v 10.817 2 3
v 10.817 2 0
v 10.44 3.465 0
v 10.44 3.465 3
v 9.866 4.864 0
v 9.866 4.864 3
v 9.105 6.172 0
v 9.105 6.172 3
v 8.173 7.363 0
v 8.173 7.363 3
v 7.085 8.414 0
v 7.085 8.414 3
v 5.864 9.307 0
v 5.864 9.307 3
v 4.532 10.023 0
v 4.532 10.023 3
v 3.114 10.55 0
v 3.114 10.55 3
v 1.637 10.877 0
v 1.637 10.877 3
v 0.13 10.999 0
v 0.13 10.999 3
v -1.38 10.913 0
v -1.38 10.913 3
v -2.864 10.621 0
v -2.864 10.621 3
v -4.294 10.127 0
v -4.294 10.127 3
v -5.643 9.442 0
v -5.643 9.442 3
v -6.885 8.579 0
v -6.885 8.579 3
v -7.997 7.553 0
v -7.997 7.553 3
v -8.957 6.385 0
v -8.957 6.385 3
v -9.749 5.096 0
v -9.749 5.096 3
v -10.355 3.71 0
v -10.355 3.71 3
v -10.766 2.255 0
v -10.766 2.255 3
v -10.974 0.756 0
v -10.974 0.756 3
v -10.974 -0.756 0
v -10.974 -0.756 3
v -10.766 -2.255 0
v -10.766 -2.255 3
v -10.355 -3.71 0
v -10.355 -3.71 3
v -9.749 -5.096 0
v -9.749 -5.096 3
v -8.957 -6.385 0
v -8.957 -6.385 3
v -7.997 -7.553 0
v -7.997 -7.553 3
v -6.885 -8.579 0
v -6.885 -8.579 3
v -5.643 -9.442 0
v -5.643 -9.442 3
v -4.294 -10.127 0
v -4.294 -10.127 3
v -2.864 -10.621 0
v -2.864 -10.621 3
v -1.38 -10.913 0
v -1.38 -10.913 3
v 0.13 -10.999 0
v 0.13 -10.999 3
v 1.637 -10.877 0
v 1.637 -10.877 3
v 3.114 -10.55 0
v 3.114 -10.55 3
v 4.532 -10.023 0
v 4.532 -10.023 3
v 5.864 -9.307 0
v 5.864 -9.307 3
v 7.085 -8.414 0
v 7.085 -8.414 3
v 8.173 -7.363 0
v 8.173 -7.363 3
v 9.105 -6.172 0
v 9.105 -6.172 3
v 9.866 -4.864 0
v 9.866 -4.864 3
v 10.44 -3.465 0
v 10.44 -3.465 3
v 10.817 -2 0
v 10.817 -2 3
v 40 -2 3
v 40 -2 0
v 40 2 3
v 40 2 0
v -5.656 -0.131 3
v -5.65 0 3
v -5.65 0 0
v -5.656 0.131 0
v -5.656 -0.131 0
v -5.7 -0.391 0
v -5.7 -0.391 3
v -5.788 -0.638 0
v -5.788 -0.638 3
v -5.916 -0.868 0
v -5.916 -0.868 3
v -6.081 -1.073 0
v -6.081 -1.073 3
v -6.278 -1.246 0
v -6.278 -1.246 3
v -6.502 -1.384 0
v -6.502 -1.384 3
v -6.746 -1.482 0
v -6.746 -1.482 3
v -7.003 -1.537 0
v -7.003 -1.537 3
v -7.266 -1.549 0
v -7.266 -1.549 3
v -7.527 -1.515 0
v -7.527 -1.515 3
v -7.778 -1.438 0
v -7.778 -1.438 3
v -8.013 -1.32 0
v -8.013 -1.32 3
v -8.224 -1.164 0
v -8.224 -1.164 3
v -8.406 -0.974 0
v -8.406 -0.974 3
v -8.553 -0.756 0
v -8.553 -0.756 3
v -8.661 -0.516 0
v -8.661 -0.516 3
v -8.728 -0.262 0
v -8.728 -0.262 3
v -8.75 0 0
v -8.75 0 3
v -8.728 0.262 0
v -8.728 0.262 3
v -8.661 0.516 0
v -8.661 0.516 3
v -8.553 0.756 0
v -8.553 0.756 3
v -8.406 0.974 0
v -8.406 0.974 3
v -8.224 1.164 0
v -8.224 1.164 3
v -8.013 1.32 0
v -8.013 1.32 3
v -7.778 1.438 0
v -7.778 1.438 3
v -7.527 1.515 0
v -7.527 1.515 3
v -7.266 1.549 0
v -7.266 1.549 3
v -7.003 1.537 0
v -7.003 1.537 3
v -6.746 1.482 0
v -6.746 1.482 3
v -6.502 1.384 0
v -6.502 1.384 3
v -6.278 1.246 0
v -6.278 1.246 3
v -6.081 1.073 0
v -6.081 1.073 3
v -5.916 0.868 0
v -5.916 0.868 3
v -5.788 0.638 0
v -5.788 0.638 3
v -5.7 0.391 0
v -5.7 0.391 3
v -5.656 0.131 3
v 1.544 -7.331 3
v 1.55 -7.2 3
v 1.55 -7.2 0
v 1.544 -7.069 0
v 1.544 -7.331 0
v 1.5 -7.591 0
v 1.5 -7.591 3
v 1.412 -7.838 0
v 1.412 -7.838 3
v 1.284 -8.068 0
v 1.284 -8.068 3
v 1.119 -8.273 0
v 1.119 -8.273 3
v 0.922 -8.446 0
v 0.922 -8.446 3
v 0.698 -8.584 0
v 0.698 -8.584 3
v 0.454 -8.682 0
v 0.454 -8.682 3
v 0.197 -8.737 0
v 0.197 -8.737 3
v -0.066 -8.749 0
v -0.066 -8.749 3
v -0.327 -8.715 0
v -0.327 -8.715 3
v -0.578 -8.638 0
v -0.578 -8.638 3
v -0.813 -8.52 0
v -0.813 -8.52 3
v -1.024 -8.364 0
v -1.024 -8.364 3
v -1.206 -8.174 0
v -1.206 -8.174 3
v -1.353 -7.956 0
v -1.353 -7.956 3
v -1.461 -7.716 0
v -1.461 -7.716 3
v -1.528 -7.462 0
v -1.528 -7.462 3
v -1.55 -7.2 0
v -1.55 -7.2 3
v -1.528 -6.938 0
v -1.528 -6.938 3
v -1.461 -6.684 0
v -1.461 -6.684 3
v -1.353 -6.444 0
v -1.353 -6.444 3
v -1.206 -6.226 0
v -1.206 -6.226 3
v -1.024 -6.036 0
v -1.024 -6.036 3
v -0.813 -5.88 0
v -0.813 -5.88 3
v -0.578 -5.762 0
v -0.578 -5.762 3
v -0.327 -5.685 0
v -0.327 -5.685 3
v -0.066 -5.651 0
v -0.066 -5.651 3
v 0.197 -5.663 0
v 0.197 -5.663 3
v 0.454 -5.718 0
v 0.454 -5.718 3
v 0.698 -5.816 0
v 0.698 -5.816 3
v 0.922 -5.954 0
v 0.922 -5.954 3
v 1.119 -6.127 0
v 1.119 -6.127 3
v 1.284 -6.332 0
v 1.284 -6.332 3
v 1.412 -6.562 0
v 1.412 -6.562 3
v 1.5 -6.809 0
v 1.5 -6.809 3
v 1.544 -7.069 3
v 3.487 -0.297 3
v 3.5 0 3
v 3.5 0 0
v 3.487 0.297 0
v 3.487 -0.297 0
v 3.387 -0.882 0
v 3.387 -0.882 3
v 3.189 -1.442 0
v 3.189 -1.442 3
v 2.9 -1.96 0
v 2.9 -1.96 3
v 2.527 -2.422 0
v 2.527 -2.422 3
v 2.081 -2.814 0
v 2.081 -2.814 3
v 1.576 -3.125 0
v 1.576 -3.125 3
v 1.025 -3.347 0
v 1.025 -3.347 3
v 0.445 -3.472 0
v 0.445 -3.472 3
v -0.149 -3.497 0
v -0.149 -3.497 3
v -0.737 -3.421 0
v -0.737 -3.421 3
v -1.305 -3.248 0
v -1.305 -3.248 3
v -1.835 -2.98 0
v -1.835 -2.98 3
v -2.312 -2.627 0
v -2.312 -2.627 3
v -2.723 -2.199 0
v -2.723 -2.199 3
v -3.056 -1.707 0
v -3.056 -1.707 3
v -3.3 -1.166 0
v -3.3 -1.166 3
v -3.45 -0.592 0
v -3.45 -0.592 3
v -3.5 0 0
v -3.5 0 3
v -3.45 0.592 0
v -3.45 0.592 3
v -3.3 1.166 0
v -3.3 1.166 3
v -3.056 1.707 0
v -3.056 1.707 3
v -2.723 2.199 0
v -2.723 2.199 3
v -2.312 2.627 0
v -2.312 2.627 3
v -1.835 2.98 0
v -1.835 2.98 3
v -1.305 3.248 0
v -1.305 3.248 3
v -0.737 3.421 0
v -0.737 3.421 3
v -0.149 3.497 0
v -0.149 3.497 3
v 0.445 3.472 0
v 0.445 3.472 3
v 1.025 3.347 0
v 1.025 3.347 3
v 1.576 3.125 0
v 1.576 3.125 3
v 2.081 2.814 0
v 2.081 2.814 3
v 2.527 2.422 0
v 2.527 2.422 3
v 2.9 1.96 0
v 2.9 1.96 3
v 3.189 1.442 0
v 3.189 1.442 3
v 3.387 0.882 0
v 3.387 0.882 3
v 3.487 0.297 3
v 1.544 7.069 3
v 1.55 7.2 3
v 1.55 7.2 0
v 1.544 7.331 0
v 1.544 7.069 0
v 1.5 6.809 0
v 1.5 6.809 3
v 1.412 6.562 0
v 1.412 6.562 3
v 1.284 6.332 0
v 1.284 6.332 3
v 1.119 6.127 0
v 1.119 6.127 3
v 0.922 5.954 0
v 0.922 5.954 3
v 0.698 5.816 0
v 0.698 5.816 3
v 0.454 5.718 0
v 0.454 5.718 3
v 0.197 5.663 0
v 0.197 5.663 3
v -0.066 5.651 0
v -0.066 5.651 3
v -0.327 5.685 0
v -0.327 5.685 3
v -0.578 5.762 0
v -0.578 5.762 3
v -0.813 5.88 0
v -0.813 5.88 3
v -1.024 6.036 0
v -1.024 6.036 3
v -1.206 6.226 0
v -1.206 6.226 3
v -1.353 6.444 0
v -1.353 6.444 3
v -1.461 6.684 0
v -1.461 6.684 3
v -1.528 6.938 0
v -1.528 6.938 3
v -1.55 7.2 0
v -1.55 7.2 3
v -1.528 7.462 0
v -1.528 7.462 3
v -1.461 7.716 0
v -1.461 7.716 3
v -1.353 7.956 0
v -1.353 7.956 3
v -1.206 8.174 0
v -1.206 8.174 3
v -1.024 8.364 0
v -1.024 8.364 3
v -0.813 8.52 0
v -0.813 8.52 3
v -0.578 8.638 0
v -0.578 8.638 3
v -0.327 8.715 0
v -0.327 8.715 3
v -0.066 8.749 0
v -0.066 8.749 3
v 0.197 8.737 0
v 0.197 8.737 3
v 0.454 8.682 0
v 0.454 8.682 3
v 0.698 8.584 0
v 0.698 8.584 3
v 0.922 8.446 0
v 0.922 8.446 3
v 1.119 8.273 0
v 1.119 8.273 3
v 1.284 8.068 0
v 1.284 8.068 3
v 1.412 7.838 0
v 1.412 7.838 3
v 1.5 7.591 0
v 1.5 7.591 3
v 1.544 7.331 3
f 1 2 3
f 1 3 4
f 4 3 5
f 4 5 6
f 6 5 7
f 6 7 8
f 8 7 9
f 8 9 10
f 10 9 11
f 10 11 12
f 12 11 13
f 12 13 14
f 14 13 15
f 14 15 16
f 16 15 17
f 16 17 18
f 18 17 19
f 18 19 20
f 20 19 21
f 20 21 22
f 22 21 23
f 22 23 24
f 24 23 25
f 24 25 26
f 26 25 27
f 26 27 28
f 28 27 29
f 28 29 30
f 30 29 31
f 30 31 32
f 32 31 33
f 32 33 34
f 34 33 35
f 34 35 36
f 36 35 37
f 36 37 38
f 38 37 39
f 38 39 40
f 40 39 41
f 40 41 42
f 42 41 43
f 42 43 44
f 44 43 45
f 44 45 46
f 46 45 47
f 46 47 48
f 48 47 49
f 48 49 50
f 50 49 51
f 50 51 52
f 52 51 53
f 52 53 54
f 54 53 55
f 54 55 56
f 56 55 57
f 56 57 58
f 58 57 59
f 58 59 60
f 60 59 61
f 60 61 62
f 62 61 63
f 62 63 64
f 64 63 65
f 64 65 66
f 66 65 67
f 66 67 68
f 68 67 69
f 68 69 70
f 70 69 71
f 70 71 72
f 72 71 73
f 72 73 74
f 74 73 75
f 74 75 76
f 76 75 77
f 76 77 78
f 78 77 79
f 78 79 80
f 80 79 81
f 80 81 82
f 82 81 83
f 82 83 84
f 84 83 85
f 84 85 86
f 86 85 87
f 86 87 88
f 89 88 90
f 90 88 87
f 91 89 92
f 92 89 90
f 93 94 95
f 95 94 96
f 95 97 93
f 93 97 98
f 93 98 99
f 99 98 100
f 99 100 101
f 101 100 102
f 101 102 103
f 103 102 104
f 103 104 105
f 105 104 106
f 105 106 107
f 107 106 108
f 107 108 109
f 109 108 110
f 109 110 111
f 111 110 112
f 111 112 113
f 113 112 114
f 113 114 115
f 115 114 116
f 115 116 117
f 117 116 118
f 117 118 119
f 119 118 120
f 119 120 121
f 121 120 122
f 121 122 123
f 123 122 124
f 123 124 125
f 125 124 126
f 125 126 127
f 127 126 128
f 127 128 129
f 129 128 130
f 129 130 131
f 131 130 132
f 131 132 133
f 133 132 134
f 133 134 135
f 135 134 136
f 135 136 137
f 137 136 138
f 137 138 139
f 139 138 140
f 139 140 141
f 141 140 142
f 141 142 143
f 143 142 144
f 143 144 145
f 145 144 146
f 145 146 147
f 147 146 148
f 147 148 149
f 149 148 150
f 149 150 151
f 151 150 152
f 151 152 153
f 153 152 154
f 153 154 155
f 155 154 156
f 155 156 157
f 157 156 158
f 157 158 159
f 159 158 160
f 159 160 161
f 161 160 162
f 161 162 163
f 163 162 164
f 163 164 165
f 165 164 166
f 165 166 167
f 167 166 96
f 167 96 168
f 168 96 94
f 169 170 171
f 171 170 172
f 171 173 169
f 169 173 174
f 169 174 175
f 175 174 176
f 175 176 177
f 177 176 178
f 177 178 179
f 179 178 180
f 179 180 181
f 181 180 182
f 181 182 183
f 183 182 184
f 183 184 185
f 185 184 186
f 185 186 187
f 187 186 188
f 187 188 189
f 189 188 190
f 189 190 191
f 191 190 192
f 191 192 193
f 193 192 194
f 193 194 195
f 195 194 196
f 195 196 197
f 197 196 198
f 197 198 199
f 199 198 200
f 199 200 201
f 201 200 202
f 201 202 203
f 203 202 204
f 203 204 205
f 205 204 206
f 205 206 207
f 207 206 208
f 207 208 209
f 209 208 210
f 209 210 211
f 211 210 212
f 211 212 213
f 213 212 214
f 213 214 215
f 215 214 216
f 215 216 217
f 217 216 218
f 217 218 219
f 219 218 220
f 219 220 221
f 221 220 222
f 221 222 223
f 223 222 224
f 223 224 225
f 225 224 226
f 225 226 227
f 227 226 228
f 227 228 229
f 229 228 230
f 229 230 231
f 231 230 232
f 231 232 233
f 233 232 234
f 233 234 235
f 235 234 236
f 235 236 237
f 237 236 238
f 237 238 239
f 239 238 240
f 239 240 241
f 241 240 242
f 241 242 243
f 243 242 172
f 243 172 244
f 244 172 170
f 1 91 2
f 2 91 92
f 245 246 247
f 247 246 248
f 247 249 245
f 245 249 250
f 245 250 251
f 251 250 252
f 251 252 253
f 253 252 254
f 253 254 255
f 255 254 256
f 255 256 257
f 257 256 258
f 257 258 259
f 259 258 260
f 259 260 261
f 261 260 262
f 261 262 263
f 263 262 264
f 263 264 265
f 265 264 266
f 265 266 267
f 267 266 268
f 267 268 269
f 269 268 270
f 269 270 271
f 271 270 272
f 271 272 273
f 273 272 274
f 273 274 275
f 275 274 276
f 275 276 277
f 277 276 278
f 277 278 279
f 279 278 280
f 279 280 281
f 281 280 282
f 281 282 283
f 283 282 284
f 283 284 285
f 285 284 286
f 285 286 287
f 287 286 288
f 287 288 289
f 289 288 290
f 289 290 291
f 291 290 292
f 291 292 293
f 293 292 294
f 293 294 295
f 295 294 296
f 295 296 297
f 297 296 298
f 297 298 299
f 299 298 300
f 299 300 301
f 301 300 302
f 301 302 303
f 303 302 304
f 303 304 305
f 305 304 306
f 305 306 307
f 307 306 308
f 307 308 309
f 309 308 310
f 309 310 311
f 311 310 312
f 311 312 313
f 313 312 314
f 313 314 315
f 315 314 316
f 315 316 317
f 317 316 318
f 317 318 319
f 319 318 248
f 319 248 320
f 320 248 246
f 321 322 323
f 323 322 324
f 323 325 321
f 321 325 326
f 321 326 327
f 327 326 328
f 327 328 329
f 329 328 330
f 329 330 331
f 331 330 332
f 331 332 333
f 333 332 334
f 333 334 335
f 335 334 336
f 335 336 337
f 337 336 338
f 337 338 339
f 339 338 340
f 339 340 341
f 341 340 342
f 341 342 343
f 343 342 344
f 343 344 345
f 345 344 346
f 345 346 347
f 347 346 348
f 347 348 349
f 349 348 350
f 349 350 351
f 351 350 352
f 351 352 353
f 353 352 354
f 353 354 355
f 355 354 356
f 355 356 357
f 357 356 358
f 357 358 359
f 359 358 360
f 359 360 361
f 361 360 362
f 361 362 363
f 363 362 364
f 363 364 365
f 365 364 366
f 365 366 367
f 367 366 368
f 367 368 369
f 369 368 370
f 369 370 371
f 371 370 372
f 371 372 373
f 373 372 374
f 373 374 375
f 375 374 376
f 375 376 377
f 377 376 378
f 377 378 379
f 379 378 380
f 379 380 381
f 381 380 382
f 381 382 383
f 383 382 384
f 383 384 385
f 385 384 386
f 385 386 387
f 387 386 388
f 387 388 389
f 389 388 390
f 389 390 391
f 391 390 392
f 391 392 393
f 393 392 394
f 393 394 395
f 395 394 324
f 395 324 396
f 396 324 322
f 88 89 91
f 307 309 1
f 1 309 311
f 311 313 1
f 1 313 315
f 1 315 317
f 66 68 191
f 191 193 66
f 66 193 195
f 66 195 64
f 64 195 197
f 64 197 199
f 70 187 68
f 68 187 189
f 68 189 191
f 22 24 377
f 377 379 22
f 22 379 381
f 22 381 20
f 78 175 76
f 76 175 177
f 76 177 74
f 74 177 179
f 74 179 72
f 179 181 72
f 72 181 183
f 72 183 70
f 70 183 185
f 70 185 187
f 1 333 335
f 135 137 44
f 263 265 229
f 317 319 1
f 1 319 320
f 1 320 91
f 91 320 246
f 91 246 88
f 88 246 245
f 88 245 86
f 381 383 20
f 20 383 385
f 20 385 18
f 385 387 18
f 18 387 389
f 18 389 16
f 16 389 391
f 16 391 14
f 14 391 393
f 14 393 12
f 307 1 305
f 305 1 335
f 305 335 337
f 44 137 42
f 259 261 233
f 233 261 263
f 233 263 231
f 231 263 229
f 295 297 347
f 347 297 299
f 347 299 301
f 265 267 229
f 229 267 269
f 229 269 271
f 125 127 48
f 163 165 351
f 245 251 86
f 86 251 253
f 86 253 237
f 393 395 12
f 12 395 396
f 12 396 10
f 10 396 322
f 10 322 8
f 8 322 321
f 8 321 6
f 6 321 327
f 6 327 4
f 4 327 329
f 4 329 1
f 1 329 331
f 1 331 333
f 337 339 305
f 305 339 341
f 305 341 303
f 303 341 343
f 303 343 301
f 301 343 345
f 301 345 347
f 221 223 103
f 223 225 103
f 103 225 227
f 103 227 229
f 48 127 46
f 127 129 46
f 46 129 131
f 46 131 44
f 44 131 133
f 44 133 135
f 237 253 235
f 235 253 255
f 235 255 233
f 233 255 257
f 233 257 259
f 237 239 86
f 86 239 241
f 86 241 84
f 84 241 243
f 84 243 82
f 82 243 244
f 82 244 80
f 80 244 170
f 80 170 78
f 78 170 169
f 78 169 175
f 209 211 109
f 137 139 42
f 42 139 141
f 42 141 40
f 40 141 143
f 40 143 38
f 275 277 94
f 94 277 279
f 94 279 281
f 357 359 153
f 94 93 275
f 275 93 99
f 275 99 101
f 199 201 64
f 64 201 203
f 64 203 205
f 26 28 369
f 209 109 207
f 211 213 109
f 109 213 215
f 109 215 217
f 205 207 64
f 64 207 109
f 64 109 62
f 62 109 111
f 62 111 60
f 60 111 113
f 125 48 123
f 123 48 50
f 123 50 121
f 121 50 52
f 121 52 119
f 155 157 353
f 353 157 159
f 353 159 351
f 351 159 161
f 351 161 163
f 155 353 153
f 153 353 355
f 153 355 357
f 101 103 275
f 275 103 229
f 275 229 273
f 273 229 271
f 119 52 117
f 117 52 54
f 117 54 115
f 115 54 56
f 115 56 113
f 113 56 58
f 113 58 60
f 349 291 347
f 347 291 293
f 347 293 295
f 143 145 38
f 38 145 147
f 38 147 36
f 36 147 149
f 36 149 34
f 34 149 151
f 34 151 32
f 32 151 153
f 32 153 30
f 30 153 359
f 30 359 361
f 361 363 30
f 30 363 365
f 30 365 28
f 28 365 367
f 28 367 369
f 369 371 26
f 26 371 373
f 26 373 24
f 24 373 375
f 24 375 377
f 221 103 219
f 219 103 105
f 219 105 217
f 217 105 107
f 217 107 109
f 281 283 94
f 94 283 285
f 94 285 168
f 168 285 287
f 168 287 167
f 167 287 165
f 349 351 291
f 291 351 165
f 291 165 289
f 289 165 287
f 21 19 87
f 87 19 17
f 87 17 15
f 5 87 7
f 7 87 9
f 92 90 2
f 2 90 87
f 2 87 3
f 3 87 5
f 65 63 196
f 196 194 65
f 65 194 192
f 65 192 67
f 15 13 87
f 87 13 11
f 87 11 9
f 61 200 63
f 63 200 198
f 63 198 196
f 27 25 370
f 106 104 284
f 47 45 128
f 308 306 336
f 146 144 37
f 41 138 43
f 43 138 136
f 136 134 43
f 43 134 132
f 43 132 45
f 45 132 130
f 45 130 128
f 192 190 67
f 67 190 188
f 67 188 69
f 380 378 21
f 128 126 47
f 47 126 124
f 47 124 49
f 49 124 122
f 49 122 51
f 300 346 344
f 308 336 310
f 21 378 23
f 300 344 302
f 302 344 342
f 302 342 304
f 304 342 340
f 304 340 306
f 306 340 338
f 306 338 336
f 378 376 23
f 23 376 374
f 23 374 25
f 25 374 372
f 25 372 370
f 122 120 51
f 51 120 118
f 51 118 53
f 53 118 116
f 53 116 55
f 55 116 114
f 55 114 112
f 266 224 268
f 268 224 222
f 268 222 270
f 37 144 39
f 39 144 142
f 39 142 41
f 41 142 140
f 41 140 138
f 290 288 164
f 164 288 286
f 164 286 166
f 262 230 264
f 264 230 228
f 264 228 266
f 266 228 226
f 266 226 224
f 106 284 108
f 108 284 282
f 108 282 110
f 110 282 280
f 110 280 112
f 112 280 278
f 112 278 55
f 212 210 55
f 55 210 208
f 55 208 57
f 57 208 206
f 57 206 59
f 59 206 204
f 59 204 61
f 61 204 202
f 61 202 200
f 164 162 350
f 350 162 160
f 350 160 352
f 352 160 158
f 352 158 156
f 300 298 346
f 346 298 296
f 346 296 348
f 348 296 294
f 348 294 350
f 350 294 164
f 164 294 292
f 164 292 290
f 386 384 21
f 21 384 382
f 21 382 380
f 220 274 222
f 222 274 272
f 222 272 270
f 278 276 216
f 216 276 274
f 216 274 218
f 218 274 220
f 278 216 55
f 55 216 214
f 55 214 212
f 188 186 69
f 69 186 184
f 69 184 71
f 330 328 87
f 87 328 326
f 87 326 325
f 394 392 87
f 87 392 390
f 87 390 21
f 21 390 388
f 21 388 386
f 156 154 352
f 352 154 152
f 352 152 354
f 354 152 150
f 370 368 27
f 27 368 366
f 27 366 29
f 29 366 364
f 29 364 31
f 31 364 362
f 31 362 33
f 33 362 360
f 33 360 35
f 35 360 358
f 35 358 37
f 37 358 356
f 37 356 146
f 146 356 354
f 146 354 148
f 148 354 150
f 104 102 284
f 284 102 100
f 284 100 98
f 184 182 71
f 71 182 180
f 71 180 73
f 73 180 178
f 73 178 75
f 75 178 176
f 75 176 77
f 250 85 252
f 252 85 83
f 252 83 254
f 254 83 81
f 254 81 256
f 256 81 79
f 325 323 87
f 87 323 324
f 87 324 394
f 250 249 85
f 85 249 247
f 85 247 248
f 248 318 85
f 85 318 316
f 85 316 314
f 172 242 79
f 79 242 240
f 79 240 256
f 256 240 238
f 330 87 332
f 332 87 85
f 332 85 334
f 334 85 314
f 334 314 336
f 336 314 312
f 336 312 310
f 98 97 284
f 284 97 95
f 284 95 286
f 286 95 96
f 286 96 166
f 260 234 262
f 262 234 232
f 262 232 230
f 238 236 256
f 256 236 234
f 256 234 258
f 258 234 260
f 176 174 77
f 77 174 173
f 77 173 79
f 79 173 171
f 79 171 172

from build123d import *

# Parameters (mm, degrees)
ESBO_O1_R                = 3.5
ESBO_O1_R_2              = 1.55
RESSALTO_EXTRUS_O1_DEPTH = 3


with BuildPart() as part:
    # Esboço1 → Ressalto-extrusão1 (new body)
    with BuildSketch(Plane.XY):
        with BuildLine():
            Line((40, -2), (40, 2))
            Line((40, 2), (10.816653826, 2))
            ThreePointArc((10.816653826, 2), (-11, 0), (10.816653826, -2))
            Line((10.816653826, -2), (40, -2))
        make_face()
        Circle(ESBO_O1_R, mode=Mode.SUBTRACT)
        with Locations((0, 7.199999994)):
            Circle(ESBO_O1_R_2, mode=Mode.SUBTRACT)
        with Locations((-7.199999991, 0)):
            Circle(ESBO_O1_R_2, mode=Mode.SUBTRACT)
        with Locations((0, -7.199999987)):
            Circle(ESBO_O1_R_2, mode=Mode.SUBTRACT)
    extrude(amount=RESSALTO_EXTRUS_O1_DEPTH)


solid = part.part
